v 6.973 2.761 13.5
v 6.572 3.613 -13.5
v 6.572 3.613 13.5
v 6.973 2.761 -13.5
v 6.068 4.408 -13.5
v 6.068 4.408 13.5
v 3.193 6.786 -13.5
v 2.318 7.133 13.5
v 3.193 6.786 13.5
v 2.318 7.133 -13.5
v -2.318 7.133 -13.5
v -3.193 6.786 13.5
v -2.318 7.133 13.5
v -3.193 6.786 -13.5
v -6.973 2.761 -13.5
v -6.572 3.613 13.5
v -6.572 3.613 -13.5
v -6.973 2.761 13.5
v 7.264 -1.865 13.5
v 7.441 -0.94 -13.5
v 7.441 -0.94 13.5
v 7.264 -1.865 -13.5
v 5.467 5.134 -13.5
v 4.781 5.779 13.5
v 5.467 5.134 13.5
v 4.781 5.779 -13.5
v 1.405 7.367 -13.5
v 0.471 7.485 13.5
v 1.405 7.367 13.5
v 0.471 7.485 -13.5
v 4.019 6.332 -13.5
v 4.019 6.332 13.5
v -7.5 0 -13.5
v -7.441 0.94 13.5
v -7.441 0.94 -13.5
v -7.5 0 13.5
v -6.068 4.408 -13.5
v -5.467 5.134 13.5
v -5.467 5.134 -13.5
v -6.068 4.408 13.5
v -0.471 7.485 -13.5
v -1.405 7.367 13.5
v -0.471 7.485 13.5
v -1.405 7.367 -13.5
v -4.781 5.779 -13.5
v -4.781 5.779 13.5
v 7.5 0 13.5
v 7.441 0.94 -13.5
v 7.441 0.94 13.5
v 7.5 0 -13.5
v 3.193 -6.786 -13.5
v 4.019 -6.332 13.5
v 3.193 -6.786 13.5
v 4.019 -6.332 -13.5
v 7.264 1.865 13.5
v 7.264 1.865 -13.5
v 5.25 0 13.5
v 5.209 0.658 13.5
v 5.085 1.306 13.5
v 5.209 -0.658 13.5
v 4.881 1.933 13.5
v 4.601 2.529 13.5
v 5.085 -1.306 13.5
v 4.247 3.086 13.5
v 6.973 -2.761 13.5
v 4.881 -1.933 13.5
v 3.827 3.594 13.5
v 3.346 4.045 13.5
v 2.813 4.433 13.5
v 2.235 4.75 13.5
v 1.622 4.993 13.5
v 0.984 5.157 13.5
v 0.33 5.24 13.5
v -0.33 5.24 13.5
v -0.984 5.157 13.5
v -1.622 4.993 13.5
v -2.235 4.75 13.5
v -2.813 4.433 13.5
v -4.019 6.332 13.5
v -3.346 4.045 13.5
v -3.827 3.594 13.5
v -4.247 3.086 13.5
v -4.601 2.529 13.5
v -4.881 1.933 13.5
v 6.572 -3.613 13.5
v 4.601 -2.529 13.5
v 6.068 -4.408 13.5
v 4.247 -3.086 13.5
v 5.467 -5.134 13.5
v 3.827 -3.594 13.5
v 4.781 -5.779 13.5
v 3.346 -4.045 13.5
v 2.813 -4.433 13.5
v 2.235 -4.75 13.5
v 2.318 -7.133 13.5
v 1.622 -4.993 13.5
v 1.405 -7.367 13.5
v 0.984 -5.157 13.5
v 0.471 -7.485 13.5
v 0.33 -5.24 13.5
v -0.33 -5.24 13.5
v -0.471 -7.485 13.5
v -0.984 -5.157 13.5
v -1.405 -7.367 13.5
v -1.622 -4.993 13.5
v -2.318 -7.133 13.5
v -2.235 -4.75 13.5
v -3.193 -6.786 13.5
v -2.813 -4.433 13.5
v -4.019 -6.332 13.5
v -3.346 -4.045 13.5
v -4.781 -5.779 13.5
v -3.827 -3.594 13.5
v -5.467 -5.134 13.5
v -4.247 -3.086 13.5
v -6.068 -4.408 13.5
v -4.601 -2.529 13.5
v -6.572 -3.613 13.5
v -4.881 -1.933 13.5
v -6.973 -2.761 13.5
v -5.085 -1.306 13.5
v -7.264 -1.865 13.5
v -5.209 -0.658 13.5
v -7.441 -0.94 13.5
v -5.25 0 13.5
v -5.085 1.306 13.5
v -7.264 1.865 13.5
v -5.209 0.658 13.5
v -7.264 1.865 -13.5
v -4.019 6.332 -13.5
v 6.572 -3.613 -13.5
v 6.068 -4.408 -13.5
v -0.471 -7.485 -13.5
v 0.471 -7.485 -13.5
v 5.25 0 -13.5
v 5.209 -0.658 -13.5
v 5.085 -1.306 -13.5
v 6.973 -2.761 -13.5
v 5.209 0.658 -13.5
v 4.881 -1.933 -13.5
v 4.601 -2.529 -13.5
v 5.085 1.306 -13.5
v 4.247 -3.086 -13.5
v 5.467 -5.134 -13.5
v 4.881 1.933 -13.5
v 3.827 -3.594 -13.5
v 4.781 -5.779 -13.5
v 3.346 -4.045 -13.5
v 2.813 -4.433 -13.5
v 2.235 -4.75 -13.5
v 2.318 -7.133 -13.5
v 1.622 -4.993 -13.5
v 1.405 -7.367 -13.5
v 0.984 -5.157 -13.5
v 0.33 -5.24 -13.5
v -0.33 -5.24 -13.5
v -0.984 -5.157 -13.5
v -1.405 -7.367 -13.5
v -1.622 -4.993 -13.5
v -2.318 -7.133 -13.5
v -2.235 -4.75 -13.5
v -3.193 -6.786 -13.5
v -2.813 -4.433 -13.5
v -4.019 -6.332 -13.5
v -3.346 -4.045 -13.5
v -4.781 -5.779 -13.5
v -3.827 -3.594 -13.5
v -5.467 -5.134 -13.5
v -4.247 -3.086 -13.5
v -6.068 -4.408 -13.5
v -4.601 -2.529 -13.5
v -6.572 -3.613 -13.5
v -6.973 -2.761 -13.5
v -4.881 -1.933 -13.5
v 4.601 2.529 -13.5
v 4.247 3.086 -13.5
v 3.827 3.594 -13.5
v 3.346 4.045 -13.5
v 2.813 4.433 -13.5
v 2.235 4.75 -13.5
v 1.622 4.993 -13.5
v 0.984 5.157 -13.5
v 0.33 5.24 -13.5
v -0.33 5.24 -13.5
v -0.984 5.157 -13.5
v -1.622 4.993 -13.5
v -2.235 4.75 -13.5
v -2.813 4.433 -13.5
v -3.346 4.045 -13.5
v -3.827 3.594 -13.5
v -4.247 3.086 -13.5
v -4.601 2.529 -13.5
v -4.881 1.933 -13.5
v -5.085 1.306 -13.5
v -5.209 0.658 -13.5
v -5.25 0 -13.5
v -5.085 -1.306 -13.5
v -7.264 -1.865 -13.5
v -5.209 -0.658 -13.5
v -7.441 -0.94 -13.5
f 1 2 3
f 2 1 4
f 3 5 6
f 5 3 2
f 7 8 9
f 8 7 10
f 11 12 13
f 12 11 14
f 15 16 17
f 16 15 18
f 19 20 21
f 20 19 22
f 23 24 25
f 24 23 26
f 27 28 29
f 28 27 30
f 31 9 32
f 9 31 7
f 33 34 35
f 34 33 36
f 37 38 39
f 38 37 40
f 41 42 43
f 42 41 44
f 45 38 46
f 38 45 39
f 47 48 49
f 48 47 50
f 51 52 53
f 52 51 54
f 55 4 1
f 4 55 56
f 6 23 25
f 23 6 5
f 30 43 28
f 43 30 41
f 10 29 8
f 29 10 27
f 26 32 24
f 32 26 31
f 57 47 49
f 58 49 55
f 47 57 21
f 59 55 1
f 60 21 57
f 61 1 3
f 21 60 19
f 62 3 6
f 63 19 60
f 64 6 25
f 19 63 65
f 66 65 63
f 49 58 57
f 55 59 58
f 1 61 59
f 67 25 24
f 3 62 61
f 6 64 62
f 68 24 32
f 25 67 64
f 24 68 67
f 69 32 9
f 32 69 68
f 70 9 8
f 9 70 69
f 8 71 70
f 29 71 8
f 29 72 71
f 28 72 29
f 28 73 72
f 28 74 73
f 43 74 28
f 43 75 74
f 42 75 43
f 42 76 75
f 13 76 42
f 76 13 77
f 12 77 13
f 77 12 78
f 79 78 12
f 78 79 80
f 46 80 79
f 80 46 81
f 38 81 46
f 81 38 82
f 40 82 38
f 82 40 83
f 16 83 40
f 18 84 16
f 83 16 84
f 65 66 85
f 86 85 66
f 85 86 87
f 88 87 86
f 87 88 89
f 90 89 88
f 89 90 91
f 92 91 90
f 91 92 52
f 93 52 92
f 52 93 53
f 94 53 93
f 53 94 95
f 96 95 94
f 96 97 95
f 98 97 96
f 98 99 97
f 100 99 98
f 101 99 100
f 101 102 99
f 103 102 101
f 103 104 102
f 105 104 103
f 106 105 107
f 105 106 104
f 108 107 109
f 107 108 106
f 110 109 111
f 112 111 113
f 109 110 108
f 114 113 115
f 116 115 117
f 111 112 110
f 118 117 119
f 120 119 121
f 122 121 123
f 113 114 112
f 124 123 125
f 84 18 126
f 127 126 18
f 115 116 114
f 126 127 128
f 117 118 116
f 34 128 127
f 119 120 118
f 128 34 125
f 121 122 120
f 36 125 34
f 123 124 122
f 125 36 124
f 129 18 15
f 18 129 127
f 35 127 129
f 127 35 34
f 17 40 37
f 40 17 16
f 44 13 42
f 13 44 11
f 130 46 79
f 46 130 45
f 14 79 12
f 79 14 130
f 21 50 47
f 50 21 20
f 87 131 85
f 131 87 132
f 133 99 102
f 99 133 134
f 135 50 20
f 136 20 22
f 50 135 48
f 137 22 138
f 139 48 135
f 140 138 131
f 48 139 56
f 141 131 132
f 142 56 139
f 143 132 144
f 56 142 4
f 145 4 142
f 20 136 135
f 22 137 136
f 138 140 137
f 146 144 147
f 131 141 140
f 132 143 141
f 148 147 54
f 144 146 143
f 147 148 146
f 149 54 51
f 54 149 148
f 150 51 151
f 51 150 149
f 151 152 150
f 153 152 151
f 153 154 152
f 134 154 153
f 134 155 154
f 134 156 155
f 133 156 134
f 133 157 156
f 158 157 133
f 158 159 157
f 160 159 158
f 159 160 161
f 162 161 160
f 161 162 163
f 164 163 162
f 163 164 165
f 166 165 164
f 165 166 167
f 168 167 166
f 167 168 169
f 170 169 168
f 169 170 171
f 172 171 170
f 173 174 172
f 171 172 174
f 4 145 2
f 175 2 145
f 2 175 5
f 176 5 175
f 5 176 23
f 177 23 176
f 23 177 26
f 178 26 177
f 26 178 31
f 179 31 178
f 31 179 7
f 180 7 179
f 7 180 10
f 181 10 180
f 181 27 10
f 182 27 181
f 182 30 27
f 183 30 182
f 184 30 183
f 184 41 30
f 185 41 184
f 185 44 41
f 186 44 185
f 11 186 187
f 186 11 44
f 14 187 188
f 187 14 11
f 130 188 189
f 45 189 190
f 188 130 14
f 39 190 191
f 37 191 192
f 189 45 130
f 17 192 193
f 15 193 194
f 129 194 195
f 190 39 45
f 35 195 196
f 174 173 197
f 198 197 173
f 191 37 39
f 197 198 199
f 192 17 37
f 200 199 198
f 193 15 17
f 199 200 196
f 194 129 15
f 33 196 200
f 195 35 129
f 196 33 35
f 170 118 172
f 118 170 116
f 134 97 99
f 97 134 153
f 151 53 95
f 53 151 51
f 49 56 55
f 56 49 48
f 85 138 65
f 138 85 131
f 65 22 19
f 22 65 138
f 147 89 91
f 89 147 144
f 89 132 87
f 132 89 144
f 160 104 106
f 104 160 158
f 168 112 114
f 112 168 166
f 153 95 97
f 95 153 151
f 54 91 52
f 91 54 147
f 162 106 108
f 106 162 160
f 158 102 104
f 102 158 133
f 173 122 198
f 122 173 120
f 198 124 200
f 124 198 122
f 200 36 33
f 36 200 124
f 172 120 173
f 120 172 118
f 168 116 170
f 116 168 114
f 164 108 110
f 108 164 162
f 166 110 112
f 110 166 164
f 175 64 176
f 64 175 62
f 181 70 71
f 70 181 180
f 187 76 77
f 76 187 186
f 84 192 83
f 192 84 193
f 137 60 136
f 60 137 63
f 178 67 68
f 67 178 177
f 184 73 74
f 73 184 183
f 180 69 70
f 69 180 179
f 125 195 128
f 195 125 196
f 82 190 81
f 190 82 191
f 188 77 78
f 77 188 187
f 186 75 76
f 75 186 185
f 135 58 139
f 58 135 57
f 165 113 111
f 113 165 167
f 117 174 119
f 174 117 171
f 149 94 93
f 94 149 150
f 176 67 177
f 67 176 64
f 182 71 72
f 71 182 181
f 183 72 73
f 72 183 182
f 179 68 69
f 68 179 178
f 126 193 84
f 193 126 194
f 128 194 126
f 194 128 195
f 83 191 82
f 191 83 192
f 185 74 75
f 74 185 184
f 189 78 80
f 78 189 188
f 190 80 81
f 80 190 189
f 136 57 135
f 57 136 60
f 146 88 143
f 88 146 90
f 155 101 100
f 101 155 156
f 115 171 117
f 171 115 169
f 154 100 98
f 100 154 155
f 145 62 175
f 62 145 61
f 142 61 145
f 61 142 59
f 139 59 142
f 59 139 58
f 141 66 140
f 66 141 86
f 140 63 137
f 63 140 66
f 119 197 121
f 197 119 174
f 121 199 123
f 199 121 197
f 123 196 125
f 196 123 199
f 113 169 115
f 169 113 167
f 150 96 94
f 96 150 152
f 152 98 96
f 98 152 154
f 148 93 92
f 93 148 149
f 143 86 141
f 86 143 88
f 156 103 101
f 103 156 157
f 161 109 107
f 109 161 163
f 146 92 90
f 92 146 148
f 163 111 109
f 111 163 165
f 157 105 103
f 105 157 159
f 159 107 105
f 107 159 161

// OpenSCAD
$fn = 50;


difference() {
	union() {
		translate(v = [0, 0, -13.5000000000]) {
			cylinder(h = 27, r = 7.5000000000);
		}
	}
	union() {
		translate(v = [0, 0, -100.0000000000]) {
			cylinder(h = 200, r = 5.2500000000);
		}
	}
}
